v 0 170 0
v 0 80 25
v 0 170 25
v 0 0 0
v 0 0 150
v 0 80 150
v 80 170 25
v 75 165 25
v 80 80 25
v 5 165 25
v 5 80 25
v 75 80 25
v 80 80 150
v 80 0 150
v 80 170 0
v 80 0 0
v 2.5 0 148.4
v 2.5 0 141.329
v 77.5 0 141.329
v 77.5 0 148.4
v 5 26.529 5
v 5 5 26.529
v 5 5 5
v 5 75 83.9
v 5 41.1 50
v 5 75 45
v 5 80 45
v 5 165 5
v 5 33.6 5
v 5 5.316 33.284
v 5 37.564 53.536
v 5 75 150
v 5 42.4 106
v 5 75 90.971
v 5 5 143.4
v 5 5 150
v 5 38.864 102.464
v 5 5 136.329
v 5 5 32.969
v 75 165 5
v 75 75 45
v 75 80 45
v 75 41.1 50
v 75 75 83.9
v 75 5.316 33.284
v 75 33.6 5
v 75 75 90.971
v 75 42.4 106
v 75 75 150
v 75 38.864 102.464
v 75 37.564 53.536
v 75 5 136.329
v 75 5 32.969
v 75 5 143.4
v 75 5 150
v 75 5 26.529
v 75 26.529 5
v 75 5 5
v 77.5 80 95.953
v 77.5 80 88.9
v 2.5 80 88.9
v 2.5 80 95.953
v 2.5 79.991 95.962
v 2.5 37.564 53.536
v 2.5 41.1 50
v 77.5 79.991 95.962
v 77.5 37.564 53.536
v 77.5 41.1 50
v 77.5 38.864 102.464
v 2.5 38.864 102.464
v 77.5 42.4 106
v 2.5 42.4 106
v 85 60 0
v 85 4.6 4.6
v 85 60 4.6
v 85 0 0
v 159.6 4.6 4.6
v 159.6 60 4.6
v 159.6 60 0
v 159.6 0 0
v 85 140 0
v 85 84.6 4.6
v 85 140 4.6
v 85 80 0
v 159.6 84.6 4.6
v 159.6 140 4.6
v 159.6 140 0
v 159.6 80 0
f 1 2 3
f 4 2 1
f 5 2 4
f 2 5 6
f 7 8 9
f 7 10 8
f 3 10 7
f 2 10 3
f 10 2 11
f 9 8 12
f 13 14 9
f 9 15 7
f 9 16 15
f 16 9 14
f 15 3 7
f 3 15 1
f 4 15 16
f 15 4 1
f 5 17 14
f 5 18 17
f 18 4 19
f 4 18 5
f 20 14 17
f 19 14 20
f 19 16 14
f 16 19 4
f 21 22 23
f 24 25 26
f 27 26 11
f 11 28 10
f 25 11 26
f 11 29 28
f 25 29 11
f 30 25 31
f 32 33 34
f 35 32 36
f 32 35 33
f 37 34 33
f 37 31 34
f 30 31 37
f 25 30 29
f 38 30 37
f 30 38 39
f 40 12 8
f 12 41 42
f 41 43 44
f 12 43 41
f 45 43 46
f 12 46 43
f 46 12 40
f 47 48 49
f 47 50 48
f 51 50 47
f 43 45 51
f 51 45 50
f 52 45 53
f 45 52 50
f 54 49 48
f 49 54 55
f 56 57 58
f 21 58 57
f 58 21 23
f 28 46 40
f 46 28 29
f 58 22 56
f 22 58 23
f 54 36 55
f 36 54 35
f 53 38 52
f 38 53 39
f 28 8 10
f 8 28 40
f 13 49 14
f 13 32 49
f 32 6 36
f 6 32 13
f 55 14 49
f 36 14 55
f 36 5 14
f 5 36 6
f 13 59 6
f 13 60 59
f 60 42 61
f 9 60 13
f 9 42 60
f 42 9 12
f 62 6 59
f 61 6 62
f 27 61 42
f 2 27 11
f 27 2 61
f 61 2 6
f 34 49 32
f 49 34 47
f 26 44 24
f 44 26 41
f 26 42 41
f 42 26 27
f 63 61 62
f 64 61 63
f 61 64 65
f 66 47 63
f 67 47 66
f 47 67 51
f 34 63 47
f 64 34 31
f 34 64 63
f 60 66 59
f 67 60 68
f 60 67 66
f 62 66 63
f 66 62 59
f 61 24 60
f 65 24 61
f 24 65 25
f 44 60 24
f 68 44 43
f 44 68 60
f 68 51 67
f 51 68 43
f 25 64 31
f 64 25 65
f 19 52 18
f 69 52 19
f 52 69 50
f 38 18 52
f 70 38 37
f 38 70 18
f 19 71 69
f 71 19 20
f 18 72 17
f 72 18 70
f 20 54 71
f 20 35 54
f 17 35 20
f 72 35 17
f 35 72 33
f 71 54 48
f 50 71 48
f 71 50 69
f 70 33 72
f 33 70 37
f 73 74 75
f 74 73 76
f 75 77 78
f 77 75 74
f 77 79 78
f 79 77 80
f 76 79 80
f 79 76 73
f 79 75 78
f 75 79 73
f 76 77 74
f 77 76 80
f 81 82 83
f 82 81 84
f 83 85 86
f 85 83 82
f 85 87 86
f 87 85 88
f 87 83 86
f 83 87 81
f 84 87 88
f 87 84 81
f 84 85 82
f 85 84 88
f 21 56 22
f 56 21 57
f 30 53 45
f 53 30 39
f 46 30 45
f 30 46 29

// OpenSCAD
length = 170;
width = 80;
trayHeigth = 25;
wallthickness= 5;
towerheight = 150;
diceOutHeight = 40;

edgelength = 40;

basetray(length,width,trayHeigth);
tower();

module basetray(length,width,trayHeigth){
    
    difference(){
    //Base tray
    cube([width,length,trayHeigth]);
        
    //hollow tray
    translate([wallthickness,wallthickness,wallthickness])
    cube([width-wallthickness*2,length-wallthickness*2,trayHeigth]);
    }
}

module tower(){
    
    difference(){
    //TowerBase
    cube([width,width,towerheight]);
    //hollowTowerBase
    translate([wallthickness,wallthickness,wallthickness])
    cube([width-wallthickness*2,width-wallthickness*2,towerheight]);
    //DiceOut
    translate([wallthickness,width+wallthickness,wallthickness])
    cube([width-wallthickness*2,wallthickness*2,diceOutHeight]);
    //DiceOut
    translate([wallthickness,width-wallthickness*1.5,wallthickness])
    cube([width-wallthickness*2,wallthickness*2,diceOutHeight]);
    
       
    //2nd edge
    translate([wallthickness/2,width-edgelength+1.1,towerheight/3])
    rotate([45,0,0])
    cube([width-wallthickness,width-edgelength+20,wallthickness]);
    
    //1st edge
    translate([wallthickness/2,edgelength+2.4,towerheight-edgelength*1.1 ])
    rotate([135,0,0])
    cube([width-wallthickness,width-edgelength+20,wallthickness]);
    
        
    }
    
    //buttom edge
    translate([0,edgelength*1.09-wallthickness*2,wallthickness])
    rotate([135,0,0])
    cube([width,width-edgelength,wallthickness]);
    
    //2nd edge
difference(){
    translate([width+5,0,0])
    rotate([0,0,0])
    cube([width-wallthickness-0.4,width-edgelength+20,wallthickness-0.4]);
    //90edge
    translate([width+4.8,0,0])
    rotate([45,0,0])
    cube([width-wallthickness+2,wallthickness+2,wallthickness]);
}
    
     //2nd edge
difference(){
    translate([width+5,width,0])
    rotate([0,0,0])
    cube([width-wallthickness-0.4,width-edgelength+20,wallthickness-0.4]);
    //90edge
    translate([width+4.8,width,0])
    rotate([45,0,0])
    cube([width-wallthickness+2,wallthickness+2,wallthickness]);
}
   
   
}
